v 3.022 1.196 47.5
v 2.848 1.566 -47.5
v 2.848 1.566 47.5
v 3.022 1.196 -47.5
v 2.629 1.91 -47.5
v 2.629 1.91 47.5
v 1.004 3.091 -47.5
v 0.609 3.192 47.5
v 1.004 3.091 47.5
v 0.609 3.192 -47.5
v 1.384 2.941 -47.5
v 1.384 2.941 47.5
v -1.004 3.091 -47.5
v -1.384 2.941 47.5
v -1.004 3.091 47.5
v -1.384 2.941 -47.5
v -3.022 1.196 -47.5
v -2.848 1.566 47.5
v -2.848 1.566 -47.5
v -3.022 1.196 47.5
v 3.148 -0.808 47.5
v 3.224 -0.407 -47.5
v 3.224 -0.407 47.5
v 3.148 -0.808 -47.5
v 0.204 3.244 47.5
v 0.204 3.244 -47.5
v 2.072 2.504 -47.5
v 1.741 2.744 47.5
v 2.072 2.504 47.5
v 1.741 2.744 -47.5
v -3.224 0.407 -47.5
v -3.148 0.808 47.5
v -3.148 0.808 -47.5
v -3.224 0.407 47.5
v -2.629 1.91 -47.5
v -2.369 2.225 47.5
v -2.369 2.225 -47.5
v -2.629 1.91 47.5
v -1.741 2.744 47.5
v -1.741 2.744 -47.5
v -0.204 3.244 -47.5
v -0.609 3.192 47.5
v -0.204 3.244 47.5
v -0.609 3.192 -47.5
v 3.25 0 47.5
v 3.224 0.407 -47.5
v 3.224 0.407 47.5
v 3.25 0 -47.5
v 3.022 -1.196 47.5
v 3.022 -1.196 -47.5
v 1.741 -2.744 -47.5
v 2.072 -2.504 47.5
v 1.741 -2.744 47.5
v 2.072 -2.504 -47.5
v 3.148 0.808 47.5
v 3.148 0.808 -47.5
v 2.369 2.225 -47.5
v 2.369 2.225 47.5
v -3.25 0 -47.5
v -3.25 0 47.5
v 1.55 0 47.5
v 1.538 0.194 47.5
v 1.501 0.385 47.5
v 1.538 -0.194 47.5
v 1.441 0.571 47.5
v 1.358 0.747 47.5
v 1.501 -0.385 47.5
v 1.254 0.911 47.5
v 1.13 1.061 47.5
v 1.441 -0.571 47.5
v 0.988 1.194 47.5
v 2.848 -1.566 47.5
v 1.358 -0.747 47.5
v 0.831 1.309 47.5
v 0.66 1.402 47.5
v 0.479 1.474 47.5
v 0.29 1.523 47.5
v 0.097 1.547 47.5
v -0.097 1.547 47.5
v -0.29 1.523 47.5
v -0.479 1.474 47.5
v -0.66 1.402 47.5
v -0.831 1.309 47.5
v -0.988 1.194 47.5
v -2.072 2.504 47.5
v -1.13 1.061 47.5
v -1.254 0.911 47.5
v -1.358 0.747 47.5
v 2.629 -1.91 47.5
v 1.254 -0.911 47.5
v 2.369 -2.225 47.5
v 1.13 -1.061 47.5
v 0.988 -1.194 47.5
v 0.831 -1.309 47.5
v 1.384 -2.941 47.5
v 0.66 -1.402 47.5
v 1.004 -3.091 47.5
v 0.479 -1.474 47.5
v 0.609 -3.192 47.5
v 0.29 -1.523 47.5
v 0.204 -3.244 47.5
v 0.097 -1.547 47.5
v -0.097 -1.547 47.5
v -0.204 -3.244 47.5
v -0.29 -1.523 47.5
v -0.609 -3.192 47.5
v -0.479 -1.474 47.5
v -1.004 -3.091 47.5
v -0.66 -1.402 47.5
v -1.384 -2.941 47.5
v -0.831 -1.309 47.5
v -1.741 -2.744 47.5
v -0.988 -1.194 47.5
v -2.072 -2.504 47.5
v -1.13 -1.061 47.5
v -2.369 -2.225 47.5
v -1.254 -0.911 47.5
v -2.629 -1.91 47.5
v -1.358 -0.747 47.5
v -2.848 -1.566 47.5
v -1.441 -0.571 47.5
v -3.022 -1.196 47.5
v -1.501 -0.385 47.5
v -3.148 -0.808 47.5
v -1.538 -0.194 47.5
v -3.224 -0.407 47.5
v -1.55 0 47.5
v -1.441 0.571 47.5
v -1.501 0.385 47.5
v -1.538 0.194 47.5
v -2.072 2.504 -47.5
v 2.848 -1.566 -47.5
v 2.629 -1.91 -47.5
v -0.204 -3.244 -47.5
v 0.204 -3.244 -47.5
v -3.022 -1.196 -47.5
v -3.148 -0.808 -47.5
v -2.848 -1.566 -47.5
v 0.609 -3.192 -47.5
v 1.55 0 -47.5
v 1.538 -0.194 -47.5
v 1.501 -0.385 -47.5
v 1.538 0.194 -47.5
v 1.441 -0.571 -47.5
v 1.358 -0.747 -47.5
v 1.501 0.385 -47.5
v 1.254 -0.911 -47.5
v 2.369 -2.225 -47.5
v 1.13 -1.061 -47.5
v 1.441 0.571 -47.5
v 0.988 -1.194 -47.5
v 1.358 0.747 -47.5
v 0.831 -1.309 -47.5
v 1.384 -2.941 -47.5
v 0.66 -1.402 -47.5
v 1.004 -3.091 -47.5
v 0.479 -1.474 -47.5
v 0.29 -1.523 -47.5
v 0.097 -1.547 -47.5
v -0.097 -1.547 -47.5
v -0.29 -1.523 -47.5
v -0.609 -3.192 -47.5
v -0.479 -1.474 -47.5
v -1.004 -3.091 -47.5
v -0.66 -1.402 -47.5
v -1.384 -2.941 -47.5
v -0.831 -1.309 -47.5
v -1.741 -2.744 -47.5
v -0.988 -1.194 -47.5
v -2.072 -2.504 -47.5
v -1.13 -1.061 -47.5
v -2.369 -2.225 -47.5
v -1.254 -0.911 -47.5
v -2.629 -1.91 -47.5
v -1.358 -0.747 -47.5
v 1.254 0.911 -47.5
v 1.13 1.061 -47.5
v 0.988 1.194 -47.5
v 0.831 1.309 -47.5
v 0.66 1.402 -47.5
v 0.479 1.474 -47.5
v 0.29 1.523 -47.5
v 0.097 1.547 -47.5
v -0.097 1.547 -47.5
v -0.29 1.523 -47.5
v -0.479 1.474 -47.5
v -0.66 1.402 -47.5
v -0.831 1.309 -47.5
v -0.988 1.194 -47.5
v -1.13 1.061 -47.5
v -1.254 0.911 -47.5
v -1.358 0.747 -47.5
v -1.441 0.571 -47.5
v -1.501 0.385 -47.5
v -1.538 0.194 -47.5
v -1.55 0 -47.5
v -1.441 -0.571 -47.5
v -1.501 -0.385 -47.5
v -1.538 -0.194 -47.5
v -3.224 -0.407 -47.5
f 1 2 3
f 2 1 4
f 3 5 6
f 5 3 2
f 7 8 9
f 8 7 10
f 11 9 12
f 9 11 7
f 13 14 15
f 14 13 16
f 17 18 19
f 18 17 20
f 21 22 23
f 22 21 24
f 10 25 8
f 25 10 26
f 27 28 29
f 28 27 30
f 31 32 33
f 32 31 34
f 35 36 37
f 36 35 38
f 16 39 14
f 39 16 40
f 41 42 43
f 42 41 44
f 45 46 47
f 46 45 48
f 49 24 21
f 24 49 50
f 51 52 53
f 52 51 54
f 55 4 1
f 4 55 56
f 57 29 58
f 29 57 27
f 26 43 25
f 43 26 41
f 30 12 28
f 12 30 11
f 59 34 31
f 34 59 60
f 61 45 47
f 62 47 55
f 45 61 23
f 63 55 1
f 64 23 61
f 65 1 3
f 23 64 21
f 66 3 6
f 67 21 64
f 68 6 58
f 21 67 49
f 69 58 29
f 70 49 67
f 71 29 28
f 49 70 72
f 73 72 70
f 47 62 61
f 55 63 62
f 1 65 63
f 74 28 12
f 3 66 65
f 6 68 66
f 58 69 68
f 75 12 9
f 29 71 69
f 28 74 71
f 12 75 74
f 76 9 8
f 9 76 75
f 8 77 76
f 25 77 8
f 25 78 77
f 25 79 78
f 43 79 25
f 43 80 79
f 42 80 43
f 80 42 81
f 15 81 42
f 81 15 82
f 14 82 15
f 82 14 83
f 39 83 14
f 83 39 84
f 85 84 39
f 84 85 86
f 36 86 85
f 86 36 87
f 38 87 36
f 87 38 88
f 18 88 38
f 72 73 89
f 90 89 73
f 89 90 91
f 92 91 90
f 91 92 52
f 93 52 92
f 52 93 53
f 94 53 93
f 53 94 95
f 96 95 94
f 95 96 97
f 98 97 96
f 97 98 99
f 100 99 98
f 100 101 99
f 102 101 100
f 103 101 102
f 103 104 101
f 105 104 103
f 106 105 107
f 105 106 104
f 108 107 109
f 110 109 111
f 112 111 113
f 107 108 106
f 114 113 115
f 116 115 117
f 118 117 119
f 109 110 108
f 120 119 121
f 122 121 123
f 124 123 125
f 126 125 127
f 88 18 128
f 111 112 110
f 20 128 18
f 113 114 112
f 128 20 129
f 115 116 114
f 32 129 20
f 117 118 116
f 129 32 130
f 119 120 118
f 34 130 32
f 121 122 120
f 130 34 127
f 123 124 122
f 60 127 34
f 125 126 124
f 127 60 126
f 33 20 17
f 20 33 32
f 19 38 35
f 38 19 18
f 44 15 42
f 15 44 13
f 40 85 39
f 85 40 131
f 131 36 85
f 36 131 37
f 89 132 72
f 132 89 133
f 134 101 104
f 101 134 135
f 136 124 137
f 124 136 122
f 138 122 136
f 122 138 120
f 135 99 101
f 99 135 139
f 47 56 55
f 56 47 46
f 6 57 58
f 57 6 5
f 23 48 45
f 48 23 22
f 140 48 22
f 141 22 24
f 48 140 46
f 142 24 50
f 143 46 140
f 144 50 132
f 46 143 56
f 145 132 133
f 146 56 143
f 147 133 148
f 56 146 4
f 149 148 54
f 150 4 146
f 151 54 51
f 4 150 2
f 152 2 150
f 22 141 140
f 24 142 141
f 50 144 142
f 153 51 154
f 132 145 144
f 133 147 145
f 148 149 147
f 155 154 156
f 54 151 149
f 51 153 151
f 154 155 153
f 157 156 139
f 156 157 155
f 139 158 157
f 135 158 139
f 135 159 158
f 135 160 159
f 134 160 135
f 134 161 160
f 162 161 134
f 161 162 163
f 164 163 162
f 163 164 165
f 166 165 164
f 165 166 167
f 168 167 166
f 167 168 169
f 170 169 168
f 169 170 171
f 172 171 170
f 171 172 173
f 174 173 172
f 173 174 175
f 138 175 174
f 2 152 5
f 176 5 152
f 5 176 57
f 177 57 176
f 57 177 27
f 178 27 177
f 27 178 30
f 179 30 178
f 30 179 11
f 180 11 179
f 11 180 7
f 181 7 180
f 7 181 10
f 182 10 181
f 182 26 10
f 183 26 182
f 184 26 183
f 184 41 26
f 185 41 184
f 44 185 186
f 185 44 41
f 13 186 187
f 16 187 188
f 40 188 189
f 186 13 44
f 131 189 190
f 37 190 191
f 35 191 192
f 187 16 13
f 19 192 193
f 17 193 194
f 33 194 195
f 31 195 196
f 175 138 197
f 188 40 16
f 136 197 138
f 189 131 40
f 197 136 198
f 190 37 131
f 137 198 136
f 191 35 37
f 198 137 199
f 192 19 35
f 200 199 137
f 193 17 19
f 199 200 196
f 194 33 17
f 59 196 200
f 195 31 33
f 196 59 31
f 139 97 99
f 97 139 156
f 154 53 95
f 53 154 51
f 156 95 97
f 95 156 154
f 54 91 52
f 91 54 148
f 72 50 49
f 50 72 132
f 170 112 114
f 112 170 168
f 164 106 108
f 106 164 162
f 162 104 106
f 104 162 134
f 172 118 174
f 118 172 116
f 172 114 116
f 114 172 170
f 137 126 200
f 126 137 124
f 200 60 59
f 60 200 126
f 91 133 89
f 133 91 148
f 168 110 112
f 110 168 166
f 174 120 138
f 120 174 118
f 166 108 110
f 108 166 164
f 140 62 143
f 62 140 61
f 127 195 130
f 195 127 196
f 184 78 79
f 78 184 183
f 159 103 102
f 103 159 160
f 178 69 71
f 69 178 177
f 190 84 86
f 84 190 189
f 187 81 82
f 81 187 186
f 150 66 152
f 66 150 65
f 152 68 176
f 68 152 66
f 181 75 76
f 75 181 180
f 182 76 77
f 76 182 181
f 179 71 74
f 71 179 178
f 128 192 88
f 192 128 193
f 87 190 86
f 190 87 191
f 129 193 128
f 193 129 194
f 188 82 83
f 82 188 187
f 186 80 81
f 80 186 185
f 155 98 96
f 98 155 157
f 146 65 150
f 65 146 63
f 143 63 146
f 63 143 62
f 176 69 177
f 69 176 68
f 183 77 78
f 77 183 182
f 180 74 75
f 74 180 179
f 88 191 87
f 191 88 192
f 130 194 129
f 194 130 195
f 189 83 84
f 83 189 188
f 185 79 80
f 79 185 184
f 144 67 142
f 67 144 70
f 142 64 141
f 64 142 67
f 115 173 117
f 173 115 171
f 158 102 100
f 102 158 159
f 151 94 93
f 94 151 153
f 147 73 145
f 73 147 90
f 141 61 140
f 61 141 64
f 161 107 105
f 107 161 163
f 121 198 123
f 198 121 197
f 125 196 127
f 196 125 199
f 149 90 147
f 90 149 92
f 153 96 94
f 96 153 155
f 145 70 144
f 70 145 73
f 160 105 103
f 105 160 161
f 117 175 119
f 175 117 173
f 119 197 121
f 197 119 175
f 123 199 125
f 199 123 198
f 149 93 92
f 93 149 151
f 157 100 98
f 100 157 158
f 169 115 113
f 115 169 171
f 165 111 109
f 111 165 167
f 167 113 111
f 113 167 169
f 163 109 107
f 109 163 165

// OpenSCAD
$fn = 50;


difference() {
	union() {
		translate(v = [0, 0, -47.5000000000]) {
			cylinder(h = 95, r = 3.2500000000);
		}
	}
	union() {
		translate(v = [0, 0, -100.0000000000]) {
			cylinder(h = 200, r = 1.5500000000);
		}
	}
}
